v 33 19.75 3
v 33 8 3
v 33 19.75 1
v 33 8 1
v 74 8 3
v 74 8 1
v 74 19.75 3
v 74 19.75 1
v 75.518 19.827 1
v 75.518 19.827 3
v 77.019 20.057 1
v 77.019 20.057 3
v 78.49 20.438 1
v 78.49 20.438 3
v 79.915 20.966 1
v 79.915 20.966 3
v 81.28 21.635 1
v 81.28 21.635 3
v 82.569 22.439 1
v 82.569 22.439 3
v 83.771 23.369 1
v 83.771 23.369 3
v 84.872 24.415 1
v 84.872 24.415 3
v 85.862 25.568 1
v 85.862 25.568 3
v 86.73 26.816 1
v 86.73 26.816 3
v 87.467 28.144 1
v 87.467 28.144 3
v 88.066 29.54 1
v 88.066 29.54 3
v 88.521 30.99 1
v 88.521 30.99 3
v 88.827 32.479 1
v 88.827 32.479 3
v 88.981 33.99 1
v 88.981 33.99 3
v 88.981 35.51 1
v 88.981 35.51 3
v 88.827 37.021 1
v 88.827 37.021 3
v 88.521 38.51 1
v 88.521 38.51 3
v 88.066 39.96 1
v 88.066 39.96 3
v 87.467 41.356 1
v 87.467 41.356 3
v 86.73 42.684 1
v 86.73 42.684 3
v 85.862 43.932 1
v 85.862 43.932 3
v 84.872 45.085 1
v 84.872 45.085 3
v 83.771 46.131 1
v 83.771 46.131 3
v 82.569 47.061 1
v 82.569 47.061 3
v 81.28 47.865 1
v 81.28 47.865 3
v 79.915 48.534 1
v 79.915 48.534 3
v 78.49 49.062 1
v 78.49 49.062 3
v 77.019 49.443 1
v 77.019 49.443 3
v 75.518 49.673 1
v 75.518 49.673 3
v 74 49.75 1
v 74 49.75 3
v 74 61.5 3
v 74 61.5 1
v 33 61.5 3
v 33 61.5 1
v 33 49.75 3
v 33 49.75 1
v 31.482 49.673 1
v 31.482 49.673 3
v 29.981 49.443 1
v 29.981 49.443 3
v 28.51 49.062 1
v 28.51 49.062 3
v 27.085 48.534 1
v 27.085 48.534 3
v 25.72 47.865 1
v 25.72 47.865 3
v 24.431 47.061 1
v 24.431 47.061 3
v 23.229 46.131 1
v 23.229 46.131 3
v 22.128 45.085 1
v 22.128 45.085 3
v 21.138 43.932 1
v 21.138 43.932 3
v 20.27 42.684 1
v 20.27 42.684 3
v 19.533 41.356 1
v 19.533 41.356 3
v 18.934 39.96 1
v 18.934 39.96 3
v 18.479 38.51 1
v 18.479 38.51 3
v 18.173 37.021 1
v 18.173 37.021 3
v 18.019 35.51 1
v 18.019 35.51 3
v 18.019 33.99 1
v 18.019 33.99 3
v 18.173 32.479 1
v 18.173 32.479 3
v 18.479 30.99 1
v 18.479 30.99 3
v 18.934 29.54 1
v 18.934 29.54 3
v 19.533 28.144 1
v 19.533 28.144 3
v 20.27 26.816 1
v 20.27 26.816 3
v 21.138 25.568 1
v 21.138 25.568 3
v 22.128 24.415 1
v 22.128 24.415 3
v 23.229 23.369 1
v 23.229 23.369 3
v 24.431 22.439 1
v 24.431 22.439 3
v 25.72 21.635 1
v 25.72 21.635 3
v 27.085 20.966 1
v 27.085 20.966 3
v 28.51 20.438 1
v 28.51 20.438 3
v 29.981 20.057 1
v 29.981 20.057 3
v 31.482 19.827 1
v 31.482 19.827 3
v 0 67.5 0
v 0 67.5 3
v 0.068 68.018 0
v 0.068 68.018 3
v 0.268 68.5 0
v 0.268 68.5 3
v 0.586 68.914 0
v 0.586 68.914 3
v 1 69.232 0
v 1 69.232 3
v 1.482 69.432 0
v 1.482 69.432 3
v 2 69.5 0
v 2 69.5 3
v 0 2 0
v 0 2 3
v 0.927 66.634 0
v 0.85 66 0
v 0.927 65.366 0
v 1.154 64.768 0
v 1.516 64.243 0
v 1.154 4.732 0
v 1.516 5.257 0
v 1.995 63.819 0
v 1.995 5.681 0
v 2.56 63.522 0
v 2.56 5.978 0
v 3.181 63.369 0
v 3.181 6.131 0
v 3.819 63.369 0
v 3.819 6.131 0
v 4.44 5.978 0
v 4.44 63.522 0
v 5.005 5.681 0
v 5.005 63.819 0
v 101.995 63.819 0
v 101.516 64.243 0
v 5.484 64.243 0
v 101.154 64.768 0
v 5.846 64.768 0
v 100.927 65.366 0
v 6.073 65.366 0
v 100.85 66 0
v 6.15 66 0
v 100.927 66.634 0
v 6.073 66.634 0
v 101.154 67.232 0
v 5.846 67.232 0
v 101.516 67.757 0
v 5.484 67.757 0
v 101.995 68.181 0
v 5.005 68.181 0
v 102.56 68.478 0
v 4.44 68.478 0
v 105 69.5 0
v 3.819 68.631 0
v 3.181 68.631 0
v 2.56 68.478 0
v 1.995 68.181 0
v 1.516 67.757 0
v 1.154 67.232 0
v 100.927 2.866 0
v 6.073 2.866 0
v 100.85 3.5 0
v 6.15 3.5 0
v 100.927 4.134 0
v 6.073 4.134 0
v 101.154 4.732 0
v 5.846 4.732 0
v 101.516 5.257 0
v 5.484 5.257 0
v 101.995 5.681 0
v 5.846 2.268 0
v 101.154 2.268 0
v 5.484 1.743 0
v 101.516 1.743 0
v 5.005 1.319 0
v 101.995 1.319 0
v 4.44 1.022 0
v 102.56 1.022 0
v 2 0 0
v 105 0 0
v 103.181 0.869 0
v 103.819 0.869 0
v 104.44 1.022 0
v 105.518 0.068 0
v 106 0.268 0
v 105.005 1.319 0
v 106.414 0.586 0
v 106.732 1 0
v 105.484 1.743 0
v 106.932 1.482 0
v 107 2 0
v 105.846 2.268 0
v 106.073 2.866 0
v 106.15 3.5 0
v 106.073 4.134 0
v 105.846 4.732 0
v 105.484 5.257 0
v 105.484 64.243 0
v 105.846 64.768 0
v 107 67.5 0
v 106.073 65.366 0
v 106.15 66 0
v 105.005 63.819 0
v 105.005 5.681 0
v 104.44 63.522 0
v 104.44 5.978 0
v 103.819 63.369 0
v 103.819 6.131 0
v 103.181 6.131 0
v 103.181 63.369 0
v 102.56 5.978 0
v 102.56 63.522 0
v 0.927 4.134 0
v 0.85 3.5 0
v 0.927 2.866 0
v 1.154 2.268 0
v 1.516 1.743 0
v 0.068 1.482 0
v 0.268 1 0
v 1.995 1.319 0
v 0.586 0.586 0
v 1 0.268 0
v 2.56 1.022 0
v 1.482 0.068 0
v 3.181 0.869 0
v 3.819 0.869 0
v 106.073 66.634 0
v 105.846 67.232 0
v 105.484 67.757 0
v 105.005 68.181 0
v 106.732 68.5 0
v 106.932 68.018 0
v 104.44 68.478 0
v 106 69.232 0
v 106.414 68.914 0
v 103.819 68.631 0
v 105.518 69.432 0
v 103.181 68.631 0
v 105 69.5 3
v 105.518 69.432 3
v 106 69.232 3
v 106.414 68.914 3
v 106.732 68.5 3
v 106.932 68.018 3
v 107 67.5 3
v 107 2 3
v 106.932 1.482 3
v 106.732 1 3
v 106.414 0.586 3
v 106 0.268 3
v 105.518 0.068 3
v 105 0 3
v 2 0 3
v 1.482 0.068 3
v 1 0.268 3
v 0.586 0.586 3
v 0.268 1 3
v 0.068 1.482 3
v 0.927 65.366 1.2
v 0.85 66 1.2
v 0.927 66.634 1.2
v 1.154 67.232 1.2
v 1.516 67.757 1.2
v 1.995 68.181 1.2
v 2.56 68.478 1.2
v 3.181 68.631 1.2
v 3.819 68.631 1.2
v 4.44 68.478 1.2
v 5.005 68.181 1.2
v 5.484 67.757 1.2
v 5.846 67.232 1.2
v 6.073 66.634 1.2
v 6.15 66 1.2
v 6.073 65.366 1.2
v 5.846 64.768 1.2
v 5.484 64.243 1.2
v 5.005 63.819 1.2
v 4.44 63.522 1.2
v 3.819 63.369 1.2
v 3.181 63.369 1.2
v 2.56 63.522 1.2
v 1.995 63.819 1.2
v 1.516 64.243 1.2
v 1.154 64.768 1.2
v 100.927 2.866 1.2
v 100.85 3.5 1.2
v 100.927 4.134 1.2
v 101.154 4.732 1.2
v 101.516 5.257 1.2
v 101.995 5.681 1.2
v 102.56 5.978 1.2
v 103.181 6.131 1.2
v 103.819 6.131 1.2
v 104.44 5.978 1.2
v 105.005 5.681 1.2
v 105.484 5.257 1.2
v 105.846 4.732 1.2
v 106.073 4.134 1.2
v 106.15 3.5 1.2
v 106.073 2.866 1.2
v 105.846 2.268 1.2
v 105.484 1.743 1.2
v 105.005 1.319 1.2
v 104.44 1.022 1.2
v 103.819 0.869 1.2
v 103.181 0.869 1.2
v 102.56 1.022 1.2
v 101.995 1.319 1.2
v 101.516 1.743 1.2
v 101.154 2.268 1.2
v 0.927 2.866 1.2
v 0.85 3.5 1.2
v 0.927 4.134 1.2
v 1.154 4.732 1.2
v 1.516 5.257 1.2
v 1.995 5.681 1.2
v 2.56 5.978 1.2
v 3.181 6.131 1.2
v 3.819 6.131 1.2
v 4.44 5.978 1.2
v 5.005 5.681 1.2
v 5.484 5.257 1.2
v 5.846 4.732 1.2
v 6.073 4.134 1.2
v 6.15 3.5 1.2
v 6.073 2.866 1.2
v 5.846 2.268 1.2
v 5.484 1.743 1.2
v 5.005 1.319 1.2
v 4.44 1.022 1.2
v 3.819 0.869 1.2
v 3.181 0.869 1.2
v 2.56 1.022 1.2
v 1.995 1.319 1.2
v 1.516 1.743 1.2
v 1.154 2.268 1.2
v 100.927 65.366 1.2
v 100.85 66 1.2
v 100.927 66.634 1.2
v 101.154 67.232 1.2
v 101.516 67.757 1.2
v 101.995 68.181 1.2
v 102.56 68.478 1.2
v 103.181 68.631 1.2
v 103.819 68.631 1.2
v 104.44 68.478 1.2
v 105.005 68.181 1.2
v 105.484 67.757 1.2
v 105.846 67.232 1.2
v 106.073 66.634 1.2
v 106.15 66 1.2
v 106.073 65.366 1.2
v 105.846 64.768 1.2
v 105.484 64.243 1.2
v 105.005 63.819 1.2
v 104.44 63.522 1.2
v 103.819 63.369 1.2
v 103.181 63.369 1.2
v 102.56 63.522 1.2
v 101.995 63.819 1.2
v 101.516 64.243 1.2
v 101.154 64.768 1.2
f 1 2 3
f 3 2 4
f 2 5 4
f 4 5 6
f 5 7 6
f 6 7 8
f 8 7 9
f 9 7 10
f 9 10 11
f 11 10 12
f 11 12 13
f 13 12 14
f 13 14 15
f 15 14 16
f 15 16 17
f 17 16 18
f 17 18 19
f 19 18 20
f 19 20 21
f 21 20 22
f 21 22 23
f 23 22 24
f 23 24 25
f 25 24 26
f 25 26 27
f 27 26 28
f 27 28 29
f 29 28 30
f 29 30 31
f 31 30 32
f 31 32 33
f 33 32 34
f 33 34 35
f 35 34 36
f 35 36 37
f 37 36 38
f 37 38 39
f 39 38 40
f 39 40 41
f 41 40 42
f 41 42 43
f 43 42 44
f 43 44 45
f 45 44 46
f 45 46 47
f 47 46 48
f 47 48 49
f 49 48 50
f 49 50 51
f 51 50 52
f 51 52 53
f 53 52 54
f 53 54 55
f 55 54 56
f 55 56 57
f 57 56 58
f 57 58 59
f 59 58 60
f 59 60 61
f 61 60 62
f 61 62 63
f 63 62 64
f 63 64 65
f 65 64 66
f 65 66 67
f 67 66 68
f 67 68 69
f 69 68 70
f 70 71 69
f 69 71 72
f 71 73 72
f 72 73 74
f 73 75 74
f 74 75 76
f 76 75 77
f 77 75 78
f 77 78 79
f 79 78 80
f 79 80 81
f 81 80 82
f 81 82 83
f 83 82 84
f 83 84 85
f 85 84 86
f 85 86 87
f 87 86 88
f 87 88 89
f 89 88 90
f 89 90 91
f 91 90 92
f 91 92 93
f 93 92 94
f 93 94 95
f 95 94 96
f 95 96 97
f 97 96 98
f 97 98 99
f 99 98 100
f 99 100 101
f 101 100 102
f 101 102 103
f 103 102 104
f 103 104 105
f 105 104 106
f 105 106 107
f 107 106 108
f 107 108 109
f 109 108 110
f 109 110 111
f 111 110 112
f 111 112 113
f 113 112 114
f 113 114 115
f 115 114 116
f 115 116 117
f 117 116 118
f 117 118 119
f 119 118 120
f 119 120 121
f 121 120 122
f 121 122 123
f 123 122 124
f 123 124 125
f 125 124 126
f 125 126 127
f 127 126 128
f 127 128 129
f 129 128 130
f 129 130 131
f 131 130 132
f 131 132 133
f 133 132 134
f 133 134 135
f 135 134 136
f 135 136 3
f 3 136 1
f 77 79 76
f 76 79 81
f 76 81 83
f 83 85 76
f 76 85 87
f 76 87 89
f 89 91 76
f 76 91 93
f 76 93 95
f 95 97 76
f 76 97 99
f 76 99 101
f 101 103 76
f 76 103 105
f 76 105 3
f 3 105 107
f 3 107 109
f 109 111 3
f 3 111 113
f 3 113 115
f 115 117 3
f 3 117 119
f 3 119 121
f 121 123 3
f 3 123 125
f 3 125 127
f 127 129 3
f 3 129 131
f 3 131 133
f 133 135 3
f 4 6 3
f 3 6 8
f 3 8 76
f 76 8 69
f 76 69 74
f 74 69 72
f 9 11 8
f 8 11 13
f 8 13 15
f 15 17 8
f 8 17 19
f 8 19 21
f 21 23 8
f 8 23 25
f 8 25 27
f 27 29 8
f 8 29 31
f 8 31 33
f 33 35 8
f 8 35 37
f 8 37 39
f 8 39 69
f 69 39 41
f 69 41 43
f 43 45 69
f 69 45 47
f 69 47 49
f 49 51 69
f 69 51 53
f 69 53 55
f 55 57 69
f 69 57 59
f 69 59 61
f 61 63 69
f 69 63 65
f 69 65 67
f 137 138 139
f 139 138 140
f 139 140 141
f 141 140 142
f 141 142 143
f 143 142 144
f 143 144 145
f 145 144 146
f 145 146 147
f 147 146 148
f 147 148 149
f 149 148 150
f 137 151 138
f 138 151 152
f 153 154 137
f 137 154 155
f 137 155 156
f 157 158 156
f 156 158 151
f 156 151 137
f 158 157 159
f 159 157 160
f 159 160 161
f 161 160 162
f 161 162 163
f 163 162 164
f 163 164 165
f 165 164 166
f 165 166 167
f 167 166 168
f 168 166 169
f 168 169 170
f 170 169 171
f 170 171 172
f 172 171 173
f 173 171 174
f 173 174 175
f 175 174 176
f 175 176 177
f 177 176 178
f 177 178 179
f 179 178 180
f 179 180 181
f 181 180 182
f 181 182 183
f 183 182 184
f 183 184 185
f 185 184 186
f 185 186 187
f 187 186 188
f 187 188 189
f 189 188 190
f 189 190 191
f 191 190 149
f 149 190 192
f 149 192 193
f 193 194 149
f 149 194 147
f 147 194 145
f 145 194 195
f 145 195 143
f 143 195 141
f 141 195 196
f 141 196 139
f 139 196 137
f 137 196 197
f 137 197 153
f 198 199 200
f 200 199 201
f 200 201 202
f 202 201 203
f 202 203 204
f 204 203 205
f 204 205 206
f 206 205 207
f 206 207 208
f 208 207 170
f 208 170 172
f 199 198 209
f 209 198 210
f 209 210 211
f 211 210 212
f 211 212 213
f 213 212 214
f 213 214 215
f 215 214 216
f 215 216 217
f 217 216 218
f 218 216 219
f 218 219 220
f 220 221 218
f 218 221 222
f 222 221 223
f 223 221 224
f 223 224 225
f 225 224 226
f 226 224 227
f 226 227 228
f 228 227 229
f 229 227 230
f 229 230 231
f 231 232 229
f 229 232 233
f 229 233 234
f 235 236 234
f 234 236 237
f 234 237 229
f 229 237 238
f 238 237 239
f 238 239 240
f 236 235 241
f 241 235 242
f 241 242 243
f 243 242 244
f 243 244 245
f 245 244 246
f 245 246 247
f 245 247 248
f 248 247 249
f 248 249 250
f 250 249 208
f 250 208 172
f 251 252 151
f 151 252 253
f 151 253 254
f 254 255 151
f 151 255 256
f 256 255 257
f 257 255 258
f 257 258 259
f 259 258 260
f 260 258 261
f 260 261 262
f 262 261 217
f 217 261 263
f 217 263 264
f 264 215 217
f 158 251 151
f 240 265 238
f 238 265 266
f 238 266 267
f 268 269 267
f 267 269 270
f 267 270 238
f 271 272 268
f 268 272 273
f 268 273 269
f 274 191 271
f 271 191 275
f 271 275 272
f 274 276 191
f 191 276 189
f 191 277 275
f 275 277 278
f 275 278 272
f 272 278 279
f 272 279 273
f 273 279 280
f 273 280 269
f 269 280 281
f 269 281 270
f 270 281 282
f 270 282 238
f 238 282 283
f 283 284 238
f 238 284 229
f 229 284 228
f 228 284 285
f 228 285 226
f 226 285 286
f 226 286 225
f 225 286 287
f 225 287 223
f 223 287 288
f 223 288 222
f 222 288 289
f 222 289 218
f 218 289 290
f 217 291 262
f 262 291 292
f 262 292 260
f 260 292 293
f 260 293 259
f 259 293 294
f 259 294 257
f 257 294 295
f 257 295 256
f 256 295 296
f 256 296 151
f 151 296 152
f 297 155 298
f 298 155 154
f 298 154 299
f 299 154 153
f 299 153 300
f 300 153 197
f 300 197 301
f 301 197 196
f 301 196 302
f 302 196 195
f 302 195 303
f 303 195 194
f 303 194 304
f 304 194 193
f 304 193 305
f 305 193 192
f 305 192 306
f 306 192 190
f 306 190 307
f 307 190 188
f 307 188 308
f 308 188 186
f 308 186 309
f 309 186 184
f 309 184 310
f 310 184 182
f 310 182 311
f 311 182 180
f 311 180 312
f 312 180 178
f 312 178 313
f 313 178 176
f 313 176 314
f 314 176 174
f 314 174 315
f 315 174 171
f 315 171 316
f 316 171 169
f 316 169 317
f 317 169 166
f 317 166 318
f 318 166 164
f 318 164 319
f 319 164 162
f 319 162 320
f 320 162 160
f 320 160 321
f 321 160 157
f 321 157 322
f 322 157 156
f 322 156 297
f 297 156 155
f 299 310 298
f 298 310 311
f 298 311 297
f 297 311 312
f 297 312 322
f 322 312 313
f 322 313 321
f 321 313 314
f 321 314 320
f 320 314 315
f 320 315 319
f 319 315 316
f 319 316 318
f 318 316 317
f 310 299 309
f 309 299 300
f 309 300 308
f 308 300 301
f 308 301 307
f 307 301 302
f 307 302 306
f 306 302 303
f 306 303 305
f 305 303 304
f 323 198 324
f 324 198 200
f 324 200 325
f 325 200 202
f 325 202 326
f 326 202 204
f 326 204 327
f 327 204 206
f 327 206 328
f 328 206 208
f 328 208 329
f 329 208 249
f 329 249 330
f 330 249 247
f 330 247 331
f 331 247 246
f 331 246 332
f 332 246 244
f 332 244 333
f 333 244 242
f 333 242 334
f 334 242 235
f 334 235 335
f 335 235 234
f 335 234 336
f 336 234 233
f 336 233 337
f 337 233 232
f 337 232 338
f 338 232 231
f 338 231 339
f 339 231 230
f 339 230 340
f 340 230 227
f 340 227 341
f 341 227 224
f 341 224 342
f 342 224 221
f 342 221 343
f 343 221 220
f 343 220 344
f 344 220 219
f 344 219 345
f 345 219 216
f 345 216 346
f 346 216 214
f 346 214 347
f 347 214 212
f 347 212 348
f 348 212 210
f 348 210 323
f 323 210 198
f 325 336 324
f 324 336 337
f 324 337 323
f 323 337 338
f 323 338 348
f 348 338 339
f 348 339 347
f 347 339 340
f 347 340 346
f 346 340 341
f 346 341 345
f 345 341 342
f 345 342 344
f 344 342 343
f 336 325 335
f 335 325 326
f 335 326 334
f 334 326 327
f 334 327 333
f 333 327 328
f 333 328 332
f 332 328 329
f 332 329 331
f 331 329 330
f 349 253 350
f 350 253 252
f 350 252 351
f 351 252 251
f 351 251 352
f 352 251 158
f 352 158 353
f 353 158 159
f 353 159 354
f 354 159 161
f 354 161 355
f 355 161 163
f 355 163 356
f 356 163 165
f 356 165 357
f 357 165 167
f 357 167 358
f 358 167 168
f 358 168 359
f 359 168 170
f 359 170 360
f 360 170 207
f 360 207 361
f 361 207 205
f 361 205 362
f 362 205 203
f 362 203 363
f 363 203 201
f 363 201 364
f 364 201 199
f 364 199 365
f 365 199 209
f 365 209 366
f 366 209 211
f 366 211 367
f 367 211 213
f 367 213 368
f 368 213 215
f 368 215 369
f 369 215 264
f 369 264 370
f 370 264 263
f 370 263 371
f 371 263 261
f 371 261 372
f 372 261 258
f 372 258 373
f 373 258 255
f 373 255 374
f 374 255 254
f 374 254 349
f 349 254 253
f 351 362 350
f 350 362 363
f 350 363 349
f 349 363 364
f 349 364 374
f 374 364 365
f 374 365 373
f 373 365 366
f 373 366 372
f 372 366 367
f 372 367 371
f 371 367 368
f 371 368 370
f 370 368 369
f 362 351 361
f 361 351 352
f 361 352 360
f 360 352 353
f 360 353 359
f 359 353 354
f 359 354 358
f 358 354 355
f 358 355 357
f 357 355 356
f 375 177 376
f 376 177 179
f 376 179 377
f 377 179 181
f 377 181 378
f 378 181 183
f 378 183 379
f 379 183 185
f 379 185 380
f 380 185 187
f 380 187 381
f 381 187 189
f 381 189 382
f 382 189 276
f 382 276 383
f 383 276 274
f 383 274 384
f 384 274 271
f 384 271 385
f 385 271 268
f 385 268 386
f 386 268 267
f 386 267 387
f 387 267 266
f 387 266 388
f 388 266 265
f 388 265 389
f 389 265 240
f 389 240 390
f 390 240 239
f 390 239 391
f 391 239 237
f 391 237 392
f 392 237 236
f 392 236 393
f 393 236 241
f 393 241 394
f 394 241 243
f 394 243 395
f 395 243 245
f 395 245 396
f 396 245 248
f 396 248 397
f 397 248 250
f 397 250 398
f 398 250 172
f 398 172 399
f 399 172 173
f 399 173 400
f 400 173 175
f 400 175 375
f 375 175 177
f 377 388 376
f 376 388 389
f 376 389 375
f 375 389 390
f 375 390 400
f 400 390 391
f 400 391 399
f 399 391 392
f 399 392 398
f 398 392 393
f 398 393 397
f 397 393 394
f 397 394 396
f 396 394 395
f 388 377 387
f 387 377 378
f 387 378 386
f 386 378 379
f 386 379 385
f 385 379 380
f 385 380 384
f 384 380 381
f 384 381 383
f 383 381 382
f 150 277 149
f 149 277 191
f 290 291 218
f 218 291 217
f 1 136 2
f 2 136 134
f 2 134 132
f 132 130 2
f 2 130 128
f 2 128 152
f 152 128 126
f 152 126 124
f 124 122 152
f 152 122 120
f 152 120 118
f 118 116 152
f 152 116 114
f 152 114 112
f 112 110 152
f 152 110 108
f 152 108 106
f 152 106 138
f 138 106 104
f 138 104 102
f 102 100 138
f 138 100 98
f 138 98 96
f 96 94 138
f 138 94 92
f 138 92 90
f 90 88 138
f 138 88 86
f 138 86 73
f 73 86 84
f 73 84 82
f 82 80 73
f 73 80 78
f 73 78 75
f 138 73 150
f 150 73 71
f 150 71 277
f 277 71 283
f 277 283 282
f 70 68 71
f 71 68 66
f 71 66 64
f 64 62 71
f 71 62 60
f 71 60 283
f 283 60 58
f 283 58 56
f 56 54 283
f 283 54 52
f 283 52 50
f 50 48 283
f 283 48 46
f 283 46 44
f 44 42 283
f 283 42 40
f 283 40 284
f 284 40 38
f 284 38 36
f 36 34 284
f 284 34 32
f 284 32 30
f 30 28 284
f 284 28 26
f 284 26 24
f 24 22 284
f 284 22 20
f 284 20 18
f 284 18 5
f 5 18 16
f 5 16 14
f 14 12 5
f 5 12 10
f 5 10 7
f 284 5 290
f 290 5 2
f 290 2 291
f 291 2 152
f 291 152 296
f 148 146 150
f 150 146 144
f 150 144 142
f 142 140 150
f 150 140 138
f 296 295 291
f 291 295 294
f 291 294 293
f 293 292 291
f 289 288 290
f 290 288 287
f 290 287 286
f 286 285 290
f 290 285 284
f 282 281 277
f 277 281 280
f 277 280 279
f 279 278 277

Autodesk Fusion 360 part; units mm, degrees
sketch "Skizze1" plane through (0, 0, 0) normal (0, 0, 1) x (1, 0, 0)
  line L0 (0, 0) -> (107, 0)
  line L1 (107, 0) -> (107, 69.5)
  line L2 (107, 69.5) -> (0, 69.5)
  line L3 (0, 69.5) -> (0, 0)
  dimension "d1" = 107
  dimension "d2" = 69.5
extrude "Extrusion1" add sketch "Skizze1" along normal blind 3
sketch "Skizze2" plane through (0, 0, 0) normal (0, 0, -1) x (1, 0, 0)
  line L0 (0, 0) -> (0, -69.5)
  line L1 (0, -69.5) -> (107, -69.5)
  line L2 (107, -69.5) -> (107, 0)
  line L3 (107, 0) -> (0, 0)
  line L4 (0, 0) -> (7, 0)
  line L5 (7, 0) -> (7, -7)
  line L6 (7, -7) -> (0, -7)
  line L7 (0, -7) -> (0, 0)
  line L8 (107, 0) -> (100, 0)
  line L9 (100, 0) -> (100, -7)
  line L10 (100, -7) -> (107, -7)
  line L11 (107, -7) -> (107, 0)
  line L12 (107, -69.5) -> (100, -69.5)
  line L13 (100, -69.5) -> (100, -62.5)
  line L14 (100, -62.5) -> (107, -62.5)
  line L15 (107, -62.5) -> (107, -69.5)
  line L16 (0, -69.5) -> (7, -69.5)
  line L17 (7, -69.5) -> (7, -62.5)
  line L18 (7, -62.5) -> (0, -62.5)
  line L19 (0, -62.5) -> (0, -69.5)
  circle A0 centre (3.5, -66) radius 2.65
  circle A1 centre (103.5, -66) radius 2.65
  circle A2 centre (103.5, -3.5) radius 2.65
  circle A3 centre (3.5, -3.5) radius 2.65
  dimension "d5" = 7
  dimension "d6" = 7
  dimension "d7" = 7
  dimension "d8" = 7
  dimension "d9" = 7
  dimension "d10" = 7
  dimension "d11" = 7
  dimension "d12" = 7
  dimension "d13" = 5.3
  dimension "d14" = 5.3
  dimension "d15" = 5.3
  dimension "d16" = 5.3
  dimension "d17" = 3.5
  dimension "d18" = 3.5
  dimension "d19" = 3.5
  dimension "d20" = 3.5
  dimension "d21" = 3.5
  dimension "d22" = 3.5
  dimension "d23" = 3.5
  dimension "d24" = 3.5
extrude "Extrusion2" cut sketch "Skizze2" against normal blind 1.2 contours A0 | A1 | A2 | A3
fillet "Abrundung1" radius 2 4 edges at (0, 0, 1.5) (107, 0, 1.5) (107, 69.5, 1.5) (0, 69.5, 1.5)
sketch "Skizze3" plane through (0, 0, 3) normal (0, 0, 1) x (-1, 0, 0)
  arc A0 (-2, -69.5) -> (0, -67.5) centre (-2, -67.5) ccw
  line L0 (0, -67.5) -> (0, -2)
  arc A1 (0, -2) -> (-2, 0) centre (-2, -2) ccw
  line L1 (-2, 0) -> (-105, 0)
  arc A2 (-105, 0) -> (-107, -2) centre (-105, -2) ccw
  line L2 (-107, -2) -> (-107, -67.5)
  arc A3 (-107, -67.5) -> (-105, -69.5) centre (-105, -67.5) ccw
  line L3 (-105, -69.5) -> (-2, -69.5)
  line L4 (-33, -61.5) -> (-74, -61.5)
  line L5 (-74, -61.5) -> (-74, -8)
  line L6 (-74, -8) -> (-33, -8)
  line L7 (-33, -8) -> (-33, -61.5)
  circle A4 centre (-33, -34.75) radius 15
  circle A5 centre (-74, -34.75) radius 15
  dimension "d29" = 41
  dimension "d30" = 53.5
  dimension "d31" = 33
  dimension "d32" = 8
  dimension "d33" = 30
  dimension "d34" = 30
extrude "Extrusion3" cut sketch "Skizze3" against normal blind 2 contours L4 L5 L6 L7 A4 A5 | L7 A4 | L7 A4 | L5 A5 | L5 A5
equation "d31 = ( ( 74 / 2 ) * 1 mm ) - 4 mm"
